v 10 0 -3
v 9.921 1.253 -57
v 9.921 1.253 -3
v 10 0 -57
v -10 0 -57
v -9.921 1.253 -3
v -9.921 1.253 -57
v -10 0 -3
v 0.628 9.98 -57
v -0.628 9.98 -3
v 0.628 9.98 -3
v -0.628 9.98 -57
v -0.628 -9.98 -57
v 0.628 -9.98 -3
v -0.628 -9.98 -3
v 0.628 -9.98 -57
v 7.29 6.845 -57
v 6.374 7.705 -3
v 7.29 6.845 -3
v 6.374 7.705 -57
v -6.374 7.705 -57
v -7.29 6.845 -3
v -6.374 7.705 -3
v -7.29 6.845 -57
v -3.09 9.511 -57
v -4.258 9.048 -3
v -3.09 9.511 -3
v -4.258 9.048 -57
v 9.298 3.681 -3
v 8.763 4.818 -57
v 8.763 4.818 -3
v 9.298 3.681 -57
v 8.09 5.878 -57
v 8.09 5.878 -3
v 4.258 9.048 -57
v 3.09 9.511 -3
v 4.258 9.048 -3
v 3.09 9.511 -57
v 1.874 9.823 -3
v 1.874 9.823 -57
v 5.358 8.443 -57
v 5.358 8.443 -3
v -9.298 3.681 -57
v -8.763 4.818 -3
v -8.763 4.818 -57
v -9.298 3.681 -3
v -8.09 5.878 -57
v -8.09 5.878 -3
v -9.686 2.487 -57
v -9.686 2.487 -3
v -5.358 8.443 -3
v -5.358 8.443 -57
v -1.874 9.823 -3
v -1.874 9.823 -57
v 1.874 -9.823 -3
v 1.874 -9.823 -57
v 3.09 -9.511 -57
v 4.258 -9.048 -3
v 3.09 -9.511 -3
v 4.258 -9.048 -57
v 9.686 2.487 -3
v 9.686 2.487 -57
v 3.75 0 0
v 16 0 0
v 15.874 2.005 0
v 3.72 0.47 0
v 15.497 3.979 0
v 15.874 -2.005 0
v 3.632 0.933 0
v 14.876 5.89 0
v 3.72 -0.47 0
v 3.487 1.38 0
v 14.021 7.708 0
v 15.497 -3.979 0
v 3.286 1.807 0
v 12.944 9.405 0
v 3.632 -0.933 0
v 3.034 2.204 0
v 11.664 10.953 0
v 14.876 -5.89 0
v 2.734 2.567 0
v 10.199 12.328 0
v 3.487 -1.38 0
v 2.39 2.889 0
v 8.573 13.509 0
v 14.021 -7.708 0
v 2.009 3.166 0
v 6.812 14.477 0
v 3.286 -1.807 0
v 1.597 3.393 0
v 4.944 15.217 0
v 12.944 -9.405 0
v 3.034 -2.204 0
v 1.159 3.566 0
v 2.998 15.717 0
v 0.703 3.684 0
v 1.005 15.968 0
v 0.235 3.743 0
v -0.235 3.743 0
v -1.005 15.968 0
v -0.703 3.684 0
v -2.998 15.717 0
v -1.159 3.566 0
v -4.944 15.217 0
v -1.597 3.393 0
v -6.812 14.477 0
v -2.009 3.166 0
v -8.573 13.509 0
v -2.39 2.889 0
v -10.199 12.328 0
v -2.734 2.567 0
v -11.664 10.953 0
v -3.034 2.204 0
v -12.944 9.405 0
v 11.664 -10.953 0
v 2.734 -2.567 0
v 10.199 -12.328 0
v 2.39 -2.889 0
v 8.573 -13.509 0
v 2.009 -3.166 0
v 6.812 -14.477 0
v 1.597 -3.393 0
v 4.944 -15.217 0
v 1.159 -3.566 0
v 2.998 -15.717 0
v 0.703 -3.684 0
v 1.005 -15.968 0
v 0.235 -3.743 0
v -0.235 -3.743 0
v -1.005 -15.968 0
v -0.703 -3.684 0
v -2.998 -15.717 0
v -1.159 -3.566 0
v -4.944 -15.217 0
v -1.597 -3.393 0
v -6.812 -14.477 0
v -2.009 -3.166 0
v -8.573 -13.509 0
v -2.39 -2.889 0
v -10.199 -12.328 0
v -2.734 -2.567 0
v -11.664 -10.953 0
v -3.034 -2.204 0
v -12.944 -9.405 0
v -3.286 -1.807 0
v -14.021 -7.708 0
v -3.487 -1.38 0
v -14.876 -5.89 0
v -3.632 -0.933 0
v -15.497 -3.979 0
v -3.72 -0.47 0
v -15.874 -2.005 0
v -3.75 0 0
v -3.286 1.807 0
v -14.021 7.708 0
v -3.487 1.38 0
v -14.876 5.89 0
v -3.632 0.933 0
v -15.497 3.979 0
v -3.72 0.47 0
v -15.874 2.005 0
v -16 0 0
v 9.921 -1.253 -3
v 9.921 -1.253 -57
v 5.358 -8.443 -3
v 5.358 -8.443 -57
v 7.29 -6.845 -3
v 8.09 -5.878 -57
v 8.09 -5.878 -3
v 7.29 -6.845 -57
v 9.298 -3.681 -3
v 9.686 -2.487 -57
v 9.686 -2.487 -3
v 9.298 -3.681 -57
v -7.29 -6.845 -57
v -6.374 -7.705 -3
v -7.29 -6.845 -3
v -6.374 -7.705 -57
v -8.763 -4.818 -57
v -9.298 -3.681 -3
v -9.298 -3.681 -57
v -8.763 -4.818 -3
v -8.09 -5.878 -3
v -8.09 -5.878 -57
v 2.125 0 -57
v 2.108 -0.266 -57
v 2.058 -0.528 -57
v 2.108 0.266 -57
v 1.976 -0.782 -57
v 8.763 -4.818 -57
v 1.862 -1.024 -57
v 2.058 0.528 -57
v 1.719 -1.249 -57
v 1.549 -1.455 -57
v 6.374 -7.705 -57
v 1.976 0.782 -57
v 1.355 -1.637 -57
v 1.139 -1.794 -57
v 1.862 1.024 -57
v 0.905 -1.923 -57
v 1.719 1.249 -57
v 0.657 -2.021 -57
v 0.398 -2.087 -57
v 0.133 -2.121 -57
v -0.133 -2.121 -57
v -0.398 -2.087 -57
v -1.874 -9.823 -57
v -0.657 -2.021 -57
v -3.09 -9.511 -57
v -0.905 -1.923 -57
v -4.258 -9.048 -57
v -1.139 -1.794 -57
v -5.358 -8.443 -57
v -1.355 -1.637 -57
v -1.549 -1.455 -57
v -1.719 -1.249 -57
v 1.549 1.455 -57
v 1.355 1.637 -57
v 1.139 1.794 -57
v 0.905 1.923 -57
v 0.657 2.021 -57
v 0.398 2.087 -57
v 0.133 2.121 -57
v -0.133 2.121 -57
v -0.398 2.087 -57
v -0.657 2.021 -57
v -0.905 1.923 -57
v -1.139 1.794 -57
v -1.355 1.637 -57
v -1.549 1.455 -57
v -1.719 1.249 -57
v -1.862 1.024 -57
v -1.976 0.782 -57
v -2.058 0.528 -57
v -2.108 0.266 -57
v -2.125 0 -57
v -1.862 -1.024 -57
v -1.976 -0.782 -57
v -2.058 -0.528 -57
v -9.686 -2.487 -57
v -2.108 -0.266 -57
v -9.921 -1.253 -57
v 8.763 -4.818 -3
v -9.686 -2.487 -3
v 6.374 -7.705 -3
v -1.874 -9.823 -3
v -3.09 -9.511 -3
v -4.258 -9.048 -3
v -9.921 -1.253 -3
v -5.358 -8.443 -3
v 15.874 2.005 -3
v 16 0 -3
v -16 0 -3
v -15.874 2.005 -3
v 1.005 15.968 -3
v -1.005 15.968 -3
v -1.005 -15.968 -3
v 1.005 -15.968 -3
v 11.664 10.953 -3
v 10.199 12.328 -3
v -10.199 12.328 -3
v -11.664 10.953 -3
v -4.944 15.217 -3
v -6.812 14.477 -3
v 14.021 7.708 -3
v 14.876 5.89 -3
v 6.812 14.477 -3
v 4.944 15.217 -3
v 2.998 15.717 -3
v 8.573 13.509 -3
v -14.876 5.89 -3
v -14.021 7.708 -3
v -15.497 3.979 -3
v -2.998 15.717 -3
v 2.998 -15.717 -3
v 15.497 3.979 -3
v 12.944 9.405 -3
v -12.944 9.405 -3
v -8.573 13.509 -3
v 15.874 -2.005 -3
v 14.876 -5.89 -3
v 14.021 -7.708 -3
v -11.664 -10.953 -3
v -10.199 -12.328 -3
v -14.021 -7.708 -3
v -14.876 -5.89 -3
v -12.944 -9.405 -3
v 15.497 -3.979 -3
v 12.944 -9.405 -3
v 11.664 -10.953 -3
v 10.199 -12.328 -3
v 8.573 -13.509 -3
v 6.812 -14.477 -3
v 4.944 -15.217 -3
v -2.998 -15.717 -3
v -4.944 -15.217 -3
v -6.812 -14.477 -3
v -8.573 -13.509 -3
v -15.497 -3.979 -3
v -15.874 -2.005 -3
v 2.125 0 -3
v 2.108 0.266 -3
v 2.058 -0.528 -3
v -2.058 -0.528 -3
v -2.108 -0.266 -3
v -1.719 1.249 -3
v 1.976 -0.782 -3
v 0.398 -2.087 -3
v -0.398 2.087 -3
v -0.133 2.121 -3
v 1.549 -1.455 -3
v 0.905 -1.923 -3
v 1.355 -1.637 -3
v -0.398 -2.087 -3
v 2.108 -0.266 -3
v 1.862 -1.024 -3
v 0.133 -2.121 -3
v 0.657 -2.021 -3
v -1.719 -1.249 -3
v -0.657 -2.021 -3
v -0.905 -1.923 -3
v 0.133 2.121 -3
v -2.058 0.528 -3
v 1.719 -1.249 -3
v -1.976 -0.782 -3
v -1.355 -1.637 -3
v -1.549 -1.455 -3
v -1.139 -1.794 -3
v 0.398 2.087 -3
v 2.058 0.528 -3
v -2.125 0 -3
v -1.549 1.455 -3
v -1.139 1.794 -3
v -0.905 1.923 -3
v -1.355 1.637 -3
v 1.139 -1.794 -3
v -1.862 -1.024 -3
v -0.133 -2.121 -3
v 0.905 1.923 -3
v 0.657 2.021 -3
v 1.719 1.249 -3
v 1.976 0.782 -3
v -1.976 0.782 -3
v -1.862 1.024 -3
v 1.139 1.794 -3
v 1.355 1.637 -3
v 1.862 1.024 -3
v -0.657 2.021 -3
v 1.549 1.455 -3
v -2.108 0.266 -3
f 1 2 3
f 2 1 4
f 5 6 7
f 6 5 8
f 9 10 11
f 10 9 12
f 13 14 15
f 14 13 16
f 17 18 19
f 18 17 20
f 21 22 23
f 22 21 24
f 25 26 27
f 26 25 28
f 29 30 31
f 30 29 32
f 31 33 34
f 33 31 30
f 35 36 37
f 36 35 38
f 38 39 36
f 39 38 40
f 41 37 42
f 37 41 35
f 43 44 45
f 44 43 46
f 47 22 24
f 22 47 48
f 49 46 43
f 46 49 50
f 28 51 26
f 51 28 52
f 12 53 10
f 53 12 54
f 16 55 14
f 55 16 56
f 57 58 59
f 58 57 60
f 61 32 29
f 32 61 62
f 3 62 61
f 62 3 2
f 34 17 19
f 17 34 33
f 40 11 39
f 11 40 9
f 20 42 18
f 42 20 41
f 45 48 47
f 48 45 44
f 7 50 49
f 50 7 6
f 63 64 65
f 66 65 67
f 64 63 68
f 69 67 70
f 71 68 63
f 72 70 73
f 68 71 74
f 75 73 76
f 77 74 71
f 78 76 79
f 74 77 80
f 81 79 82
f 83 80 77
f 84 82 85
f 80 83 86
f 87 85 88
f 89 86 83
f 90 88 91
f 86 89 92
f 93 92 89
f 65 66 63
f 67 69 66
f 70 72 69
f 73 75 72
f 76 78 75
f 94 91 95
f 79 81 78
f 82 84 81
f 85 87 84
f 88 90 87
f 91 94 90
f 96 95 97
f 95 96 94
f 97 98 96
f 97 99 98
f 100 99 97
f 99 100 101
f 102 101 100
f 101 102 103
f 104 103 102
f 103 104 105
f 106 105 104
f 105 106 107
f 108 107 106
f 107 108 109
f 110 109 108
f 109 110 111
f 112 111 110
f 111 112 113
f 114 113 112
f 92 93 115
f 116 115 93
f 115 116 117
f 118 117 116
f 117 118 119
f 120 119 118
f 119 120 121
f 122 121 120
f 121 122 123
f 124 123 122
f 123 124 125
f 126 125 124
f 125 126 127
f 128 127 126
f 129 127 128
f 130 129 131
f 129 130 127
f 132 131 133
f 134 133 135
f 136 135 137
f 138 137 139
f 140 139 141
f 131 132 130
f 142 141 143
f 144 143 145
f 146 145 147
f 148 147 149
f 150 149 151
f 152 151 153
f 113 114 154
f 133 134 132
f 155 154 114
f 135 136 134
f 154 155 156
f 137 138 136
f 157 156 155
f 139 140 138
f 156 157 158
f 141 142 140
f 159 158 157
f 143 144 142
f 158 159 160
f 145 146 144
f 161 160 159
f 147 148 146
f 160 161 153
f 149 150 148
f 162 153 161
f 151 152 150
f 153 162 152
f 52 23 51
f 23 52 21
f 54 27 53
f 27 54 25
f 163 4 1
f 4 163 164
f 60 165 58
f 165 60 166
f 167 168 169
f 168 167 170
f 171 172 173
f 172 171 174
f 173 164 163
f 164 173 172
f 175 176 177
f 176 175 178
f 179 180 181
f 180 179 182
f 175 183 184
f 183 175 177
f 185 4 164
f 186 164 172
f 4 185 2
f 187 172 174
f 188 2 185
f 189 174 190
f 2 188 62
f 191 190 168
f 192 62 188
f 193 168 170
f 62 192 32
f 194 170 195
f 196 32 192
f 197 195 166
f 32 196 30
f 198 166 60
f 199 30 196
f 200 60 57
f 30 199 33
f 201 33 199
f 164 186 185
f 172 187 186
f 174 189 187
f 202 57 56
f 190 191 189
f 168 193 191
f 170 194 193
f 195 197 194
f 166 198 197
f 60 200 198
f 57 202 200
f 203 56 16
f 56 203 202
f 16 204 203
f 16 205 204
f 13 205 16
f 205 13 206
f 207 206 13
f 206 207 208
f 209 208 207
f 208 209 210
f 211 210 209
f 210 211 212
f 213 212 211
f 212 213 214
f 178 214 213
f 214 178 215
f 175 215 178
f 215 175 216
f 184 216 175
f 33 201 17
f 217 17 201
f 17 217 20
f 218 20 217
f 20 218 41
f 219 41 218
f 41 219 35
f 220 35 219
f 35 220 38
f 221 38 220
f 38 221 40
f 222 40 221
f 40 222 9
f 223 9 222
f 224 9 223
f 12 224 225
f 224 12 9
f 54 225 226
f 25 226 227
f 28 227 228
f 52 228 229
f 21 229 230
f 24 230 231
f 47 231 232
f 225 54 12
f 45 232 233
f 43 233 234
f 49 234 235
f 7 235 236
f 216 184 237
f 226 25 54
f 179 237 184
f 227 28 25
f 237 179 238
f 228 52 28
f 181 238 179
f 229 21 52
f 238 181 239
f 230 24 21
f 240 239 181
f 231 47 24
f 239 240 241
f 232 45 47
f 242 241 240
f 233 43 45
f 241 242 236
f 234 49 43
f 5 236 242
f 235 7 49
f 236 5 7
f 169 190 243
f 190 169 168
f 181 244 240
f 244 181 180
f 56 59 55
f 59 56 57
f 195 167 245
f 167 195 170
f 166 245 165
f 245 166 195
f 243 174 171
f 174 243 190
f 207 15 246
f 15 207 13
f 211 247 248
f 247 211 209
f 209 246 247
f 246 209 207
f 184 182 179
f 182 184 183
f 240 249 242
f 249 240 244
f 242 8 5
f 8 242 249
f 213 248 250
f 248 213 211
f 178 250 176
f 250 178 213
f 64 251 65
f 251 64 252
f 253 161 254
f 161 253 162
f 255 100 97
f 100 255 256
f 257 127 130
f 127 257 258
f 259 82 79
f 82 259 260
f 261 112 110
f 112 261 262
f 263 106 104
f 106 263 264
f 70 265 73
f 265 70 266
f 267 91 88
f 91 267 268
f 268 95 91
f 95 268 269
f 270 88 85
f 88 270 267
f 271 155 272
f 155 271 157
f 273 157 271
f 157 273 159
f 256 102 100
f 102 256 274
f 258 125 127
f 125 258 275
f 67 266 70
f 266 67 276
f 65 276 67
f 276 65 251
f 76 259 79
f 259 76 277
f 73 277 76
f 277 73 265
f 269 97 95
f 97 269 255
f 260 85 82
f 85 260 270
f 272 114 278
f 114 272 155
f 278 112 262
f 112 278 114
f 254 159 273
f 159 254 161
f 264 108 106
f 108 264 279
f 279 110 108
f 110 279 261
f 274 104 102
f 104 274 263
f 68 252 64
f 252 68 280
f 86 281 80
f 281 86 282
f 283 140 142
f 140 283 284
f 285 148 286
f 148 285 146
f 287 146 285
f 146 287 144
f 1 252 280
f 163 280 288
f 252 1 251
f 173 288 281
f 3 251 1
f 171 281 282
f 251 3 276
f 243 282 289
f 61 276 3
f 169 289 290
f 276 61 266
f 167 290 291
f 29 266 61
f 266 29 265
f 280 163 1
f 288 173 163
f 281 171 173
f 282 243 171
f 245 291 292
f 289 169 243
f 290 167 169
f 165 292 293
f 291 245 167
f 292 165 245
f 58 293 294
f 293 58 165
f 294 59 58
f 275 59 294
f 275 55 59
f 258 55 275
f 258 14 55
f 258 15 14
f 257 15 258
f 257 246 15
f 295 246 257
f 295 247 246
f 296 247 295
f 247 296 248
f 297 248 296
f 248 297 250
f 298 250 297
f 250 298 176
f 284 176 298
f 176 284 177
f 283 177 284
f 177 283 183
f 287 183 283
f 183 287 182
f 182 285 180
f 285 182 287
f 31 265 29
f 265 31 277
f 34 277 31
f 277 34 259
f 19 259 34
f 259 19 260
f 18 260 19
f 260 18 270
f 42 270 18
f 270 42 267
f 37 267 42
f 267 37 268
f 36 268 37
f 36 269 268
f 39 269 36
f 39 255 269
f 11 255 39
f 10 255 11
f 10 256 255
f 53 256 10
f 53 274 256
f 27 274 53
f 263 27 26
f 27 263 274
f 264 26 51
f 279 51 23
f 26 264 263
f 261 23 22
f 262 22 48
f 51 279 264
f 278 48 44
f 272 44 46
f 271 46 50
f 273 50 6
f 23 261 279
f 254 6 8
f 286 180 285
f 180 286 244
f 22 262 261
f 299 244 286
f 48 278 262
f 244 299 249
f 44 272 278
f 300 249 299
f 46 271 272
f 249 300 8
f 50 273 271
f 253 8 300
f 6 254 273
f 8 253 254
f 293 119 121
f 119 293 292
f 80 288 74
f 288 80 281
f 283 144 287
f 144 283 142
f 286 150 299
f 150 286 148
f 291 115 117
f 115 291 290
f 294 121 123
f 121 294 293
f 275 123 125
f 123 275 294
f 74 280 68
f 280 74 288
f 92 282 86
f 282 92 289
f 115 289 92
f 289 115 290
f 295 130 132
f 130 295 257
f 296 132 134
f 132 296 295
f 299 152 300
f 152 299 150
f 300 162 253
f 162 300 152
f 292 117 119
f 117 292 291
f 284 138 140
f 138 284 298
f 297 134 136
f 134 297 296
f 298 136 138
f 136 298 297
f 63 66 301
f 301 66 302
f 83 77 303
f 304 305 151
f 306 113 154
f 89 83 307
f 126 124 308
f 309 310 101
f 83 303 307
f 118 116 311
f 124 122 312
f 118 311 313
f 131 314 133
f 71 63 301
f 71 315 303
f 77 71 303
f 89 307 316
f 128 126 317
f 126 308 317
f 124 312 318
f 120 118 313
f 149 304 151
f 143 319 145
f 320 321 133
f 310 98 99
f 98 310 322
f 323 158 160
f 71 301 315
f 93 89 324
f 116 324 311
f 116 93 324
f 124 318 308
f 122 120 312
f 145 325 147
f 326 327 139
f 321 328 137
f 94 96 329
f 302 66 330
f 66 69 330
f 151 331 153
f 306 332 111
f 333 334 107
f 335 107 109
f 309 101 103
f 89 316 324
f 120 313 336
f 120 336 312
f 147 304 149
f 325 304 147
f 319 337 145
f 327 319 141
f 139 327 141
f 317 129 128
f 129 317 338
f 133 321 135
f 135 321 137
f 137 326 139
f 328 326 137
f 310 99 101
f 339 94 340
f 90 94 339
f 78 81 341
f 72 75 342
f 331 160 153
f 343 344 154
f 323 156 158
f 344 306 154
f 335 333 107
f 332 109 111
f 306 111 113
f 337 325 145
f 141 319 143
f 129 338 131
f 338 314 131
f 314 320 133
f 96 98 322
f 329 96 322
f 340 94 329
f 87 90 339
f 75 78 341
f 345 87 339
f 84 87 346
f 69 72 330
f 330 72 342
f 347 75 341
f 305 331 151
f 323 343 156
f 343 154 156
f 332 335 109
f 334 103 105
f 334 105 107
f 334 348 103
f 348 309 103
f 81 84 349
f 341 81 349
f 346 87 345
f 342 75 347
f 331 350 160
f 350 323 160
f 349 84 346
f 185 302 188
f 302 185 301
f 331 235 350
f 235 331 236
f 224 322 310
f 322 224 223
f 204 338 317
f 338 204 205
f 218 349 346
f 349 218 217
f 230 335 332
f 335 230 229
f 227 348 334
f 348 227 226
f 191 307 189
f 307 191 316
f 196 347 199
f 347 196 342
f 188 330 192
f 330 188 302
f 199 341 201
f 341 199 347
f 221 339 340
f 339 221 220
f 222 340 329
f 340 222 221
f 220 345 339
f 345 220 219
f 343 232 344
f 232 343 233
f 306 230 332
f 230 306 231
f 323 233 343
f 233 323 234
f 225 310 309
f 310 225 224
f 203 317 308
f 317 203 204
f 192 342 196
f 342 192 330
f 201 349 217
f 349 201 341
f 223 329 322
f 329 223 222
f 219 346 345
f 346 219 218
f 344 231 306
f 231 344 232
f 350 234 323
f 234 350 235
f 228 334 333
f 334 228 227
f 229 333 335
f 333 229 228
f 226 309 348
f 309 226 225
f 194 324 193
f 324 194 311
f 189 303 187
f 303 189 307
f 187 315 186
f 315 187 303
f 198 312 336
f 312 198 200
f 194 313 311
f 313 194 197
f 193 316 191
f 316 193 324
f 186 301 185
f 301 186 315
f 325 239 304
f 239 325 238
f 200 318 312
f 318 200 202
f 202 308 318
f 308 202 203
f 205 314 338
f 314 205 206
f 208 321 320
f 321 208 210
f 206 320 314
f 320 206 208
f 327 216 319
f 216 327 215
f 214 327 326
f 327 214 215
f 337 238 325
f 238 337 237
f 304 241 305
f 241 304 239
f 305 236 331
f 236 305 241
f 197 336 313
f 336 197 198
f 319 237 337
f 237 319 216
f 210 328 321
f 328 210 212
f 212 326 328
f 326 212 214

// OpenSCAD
$fn = 50;


difference() {
	union() {
		translate(v = [0, 0, -57.0000000000]) {
			cylinder(h = 57, r = 10.0000000000);
		}
		translate(v = [0, 0, -3.0000000000]) {
			cylinder(h = 3, r = 16.0000000000);
		}
	}
	union() {
		translate(v = [0, 0, 0]) {
			rotate(a = [0, 0, 0]) {
				difference() {
					union() {
						#translate(v = [0, 0, -57.0000000000]) {
							cylinder(h = 57, r = 2.0000000000);
						}
						#translate(v = [0, 0, -3]) {
							cylinder(h = 3, r = 10.0000000000, r1 = 2.1250000000, r2 = 3.7500000000);
						}
						#translate(v = [0, 0, -57.0000000000]) {
							cylinder(h = 57, r = 2.1250000000);
						}
						#translate(v = [0, 0, -57.0000000000]) {
							cylinder(h = 57, r = 2.0000000000);
						}
					}
					union();
				}
			}
		}
	}
}
